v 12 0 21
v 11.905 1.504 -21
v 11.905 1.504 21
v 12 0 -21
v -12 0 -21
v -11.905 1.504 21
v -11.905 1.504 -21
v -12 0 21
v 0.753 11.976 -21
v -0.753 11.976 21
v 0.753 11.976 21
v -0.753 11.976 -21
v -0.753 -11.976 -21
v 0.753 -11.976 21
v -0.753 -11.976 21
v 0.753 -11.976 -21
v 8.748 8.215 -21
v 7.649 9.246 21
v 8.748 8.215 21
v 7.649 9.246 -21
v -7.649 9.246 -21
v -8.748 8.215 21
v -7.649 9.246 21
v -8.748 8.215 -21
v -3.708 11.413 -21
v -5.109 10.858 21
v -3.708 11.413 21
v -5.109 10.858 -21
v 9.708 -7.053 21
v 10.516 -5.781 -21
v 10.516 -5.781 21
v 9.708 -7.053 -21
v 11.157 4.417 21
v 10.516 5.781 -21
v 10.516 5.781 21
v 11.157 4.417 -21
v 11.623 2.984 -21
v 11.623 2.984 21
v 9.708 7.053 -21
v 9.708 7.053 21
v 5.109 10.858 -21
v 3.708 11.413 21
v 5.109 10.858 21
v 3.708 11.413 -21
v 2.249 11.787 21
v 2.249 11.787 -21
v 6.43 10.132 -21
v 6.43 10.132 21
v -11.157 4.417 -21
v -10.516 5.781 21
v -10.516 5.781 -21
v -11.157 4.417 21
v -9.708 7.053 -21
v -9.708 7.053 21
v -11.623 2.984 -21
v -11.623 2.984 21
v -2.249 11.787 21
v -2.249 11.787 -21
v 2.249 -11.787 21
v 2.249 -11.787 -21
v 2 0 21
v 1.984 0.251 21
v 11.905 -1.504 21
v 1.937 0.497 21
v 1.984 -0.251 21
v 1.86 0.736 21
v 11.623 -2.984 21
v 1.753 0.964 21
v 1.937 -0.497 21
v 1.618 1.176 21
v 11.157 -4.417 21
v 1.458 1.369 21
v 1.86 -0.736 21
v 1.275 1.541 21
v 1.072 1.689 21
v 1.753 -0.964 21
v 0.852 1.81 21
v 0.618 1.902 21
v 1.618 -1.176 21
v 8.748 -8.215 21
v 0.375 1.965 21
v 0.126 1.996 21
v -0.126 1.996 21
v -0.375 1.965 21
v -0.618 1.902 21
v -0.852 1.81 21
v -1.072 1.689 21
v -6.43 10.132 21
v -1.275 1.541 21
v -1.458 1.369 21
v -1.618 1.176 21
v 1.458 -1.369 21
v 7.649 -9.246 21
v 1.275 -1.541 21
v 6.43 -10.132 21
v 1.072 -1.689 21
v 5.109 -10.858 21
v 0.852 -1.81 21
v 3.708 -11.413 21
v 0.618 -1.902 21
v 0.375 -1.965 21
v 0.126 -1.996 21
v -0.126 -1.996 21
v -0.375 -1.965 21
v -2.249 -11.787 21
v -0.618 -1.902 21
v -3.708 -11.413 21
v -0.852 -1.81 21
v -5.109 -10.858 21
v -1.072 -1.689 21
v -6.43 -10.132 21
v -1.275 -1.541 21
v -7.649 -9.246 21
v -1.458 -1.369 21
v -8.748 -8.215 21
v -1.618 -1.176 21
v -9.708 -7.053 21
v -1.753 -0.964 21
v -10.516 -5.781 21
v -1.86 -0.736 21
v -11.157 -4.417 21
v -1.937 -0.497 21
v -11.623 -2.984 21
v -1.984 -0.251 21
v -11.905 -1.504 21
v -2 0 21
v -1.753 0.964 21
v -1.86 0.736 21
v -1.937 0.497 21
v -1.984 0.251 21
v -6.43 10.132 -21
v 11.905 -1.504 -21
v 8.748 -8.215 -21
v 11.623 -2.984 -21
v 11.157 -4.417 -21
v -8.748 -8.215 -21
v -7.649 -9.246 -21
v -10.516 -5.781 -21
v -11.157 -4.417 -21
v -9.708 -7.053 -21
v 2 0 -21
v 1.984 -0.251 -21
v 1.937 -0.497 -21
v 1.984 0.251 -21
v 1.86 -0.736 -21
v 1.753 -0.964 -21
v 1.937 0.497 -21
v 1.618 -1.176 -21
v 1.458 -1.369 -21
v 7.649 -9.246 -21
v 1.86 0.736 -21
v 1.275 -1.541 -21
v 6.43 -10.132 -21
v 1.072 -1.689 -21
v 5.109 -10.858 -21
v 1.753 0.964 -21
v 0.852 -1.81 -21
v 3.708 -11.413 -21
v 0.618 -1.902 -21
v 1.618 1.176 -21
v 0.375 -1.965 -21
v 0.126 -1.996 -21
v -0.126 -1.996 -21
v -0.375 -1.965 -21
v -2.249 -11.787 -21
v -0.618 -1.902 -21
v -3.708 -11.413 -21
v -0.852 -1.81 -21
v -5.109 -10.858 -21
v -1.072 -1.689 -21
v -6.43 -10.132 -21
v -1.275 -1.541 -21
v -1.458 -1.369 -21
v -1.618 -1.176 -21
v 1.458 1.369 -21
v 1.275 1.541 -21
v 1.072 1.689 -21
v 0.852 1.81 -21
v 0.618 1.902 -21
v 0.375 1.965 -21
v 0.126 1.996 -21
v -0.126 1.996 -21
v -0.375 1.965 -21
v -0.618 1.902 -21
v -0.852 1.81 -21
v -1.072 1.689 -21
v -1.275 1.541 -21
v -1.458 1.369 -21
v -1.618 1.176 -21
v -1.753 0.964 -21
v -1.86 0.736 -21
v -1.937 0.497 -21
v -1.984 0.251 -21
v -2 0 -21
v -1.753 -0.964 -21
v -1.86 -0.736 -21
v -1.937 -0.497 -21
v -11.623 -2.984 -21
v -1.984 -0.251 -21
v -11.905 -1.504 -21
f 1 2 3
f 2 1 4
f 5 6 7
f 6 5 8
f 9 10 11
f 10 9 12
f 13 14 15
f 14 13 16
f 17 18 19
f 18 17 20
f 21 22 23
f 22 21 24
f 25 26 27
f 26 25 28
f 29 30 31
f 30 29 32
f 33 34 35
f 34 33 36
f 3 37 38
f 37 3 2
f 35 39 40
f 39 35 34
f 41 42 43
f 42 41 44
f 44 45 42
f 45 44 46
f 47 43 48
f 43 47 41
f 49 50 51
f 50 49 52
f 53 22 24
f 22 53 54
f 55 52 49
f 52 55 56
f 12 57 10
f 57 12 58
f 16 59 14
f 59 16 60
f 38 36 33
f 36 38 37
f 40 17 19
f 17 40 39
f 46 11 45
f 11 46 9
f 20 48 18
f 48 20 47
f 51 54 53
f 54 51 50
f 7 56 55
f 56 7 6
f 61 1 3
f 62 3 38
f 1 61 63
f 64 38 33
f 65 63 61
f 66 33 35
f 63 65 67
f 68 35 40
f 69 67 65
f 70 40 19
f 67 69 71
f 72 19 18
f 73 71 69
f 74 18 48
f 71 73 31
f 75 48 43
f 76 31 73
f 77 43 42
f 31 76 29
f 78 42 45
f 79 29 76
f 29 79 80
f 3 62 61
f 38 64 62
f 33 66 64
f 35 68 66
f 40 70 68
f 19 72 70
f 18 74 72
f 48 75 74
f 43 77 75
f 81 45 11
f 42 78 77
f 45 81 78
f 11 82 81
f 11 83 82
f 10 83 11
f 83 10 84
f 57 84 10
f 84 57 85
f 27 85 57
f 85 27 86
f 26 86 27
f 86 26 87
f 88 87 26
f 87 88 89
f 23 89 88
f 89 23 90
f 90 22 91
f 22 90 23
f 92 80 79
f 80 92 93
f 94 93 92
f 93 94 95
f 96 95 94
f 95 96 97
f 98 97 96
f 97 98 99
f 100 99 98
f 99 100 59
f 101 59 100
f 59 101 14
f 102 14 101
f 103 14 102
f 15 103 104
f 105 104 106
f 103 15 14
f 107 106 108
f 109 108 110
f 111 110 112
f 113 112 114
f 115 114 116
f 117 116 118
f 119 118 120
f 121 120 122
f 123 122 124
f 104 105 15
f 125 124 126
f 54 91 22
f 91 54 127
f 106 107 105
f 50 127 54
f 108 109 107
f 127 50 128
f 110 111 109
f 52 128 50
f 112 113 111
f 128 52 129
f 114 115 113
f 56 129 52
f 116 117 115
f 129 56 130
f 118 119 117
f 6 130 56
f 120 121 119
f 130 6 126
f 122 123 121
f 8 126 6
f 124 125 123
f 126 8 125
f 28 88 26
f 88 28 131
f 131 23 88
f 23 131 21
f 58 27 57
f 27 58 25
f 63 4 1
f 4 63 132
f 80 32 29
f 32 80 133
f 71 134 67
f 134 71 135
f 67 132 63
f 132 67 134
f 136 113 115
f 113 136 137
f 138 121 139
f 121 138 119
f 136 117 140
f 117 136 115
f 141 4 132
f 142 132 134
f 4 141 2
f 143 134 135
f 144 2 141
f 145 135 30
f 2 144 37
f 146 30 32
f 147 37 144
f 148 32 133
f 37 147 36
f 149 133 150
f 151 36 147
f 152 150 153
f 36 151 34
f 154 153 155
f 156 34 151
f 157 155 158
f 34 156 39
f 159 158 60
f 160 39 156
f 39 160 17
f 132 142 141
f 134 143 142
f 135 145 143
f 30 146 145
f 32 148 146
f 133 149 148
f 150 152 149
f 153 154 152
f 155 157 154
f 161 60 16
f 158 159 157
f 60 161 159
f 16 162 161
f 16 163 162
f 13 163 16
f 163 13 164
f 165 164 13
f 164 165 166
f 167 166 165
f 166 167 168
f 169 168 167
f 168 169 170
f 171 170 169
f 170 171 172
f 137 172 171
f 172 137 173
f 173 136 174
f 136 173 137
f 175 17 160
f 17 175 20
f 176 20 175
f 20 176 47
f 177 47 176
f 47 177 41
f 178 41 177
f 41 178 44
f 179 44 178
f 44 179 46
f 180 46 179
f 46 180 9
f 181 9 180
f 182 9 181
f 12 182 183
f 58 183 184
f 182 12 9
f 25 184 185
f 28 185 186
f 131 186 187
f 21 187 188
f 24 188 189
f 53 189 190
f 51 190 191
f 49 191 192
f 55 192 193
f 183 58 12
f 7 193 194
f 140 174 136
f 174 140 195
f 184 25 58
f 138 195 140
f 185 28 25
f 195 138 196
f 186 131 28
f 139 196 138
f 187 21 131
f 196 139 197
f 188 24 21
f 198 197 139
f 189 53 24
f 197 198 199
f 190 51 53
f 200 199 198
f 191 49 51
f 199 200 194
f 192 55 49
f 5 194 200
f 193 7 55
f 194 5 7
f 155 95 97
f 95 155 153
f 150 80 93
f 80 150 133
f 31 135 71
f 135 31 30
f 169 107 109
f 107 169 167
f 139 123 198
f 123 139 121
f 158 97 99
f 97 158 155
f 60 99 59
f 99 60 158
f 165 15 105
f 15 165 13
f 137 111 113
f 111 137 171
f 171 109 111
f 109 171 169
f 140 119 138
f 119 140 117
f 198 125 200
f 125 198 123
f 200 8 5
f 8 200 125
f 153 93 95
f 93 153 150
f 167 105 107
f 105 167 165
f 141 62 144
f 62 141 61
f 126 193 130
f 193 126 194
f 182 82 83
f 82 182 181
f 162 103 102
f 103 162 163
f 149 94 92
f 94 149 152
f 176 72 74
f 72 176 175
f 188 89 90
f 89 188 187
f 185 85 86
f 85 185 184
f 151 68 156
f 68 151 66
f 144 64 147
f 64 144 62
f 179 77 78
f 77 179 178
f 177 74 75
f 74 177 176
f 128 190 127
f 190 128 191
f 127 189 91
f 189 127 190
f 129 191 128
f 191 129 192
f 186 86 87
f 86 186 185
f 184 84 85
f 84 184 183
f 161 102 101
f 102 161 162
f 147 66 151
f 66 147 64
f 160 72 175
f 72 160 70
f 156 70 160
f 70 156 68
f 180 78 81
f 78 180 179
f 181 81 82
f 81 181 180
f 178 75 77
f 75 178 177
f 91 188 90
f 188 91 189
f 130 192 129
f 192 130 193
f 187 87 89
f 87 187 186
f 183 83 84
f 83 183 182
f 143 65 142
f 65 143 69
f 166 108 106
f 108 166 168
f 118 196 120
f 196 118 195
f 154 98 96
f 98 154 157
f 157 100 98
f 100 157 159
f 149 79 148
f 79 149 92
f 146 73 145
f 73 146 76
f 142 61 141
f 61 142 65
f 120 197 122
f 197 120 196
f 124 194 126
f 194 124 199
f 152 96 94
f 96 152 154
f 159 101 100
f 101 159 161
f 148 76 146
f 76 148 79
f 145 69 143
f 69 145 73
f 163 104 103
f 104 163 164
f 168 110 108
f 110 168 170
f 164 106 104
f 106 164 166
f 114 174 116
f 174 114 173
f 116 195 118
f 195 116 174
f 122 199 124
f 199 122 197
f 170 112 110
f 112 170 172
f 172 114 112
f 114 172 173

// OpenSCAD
$fn = 50;


difference() {
	union() {
		translate(v = [0, 0, -21.0000000000]) {
			cylinder(h = 42, r = 12.0000000000);
		}
	}
	union() {
		translate(v = [0, 0, -100.0000000000]) {
			cylinder(h = 200, r = 2.0000000000);
		}
	}
}
